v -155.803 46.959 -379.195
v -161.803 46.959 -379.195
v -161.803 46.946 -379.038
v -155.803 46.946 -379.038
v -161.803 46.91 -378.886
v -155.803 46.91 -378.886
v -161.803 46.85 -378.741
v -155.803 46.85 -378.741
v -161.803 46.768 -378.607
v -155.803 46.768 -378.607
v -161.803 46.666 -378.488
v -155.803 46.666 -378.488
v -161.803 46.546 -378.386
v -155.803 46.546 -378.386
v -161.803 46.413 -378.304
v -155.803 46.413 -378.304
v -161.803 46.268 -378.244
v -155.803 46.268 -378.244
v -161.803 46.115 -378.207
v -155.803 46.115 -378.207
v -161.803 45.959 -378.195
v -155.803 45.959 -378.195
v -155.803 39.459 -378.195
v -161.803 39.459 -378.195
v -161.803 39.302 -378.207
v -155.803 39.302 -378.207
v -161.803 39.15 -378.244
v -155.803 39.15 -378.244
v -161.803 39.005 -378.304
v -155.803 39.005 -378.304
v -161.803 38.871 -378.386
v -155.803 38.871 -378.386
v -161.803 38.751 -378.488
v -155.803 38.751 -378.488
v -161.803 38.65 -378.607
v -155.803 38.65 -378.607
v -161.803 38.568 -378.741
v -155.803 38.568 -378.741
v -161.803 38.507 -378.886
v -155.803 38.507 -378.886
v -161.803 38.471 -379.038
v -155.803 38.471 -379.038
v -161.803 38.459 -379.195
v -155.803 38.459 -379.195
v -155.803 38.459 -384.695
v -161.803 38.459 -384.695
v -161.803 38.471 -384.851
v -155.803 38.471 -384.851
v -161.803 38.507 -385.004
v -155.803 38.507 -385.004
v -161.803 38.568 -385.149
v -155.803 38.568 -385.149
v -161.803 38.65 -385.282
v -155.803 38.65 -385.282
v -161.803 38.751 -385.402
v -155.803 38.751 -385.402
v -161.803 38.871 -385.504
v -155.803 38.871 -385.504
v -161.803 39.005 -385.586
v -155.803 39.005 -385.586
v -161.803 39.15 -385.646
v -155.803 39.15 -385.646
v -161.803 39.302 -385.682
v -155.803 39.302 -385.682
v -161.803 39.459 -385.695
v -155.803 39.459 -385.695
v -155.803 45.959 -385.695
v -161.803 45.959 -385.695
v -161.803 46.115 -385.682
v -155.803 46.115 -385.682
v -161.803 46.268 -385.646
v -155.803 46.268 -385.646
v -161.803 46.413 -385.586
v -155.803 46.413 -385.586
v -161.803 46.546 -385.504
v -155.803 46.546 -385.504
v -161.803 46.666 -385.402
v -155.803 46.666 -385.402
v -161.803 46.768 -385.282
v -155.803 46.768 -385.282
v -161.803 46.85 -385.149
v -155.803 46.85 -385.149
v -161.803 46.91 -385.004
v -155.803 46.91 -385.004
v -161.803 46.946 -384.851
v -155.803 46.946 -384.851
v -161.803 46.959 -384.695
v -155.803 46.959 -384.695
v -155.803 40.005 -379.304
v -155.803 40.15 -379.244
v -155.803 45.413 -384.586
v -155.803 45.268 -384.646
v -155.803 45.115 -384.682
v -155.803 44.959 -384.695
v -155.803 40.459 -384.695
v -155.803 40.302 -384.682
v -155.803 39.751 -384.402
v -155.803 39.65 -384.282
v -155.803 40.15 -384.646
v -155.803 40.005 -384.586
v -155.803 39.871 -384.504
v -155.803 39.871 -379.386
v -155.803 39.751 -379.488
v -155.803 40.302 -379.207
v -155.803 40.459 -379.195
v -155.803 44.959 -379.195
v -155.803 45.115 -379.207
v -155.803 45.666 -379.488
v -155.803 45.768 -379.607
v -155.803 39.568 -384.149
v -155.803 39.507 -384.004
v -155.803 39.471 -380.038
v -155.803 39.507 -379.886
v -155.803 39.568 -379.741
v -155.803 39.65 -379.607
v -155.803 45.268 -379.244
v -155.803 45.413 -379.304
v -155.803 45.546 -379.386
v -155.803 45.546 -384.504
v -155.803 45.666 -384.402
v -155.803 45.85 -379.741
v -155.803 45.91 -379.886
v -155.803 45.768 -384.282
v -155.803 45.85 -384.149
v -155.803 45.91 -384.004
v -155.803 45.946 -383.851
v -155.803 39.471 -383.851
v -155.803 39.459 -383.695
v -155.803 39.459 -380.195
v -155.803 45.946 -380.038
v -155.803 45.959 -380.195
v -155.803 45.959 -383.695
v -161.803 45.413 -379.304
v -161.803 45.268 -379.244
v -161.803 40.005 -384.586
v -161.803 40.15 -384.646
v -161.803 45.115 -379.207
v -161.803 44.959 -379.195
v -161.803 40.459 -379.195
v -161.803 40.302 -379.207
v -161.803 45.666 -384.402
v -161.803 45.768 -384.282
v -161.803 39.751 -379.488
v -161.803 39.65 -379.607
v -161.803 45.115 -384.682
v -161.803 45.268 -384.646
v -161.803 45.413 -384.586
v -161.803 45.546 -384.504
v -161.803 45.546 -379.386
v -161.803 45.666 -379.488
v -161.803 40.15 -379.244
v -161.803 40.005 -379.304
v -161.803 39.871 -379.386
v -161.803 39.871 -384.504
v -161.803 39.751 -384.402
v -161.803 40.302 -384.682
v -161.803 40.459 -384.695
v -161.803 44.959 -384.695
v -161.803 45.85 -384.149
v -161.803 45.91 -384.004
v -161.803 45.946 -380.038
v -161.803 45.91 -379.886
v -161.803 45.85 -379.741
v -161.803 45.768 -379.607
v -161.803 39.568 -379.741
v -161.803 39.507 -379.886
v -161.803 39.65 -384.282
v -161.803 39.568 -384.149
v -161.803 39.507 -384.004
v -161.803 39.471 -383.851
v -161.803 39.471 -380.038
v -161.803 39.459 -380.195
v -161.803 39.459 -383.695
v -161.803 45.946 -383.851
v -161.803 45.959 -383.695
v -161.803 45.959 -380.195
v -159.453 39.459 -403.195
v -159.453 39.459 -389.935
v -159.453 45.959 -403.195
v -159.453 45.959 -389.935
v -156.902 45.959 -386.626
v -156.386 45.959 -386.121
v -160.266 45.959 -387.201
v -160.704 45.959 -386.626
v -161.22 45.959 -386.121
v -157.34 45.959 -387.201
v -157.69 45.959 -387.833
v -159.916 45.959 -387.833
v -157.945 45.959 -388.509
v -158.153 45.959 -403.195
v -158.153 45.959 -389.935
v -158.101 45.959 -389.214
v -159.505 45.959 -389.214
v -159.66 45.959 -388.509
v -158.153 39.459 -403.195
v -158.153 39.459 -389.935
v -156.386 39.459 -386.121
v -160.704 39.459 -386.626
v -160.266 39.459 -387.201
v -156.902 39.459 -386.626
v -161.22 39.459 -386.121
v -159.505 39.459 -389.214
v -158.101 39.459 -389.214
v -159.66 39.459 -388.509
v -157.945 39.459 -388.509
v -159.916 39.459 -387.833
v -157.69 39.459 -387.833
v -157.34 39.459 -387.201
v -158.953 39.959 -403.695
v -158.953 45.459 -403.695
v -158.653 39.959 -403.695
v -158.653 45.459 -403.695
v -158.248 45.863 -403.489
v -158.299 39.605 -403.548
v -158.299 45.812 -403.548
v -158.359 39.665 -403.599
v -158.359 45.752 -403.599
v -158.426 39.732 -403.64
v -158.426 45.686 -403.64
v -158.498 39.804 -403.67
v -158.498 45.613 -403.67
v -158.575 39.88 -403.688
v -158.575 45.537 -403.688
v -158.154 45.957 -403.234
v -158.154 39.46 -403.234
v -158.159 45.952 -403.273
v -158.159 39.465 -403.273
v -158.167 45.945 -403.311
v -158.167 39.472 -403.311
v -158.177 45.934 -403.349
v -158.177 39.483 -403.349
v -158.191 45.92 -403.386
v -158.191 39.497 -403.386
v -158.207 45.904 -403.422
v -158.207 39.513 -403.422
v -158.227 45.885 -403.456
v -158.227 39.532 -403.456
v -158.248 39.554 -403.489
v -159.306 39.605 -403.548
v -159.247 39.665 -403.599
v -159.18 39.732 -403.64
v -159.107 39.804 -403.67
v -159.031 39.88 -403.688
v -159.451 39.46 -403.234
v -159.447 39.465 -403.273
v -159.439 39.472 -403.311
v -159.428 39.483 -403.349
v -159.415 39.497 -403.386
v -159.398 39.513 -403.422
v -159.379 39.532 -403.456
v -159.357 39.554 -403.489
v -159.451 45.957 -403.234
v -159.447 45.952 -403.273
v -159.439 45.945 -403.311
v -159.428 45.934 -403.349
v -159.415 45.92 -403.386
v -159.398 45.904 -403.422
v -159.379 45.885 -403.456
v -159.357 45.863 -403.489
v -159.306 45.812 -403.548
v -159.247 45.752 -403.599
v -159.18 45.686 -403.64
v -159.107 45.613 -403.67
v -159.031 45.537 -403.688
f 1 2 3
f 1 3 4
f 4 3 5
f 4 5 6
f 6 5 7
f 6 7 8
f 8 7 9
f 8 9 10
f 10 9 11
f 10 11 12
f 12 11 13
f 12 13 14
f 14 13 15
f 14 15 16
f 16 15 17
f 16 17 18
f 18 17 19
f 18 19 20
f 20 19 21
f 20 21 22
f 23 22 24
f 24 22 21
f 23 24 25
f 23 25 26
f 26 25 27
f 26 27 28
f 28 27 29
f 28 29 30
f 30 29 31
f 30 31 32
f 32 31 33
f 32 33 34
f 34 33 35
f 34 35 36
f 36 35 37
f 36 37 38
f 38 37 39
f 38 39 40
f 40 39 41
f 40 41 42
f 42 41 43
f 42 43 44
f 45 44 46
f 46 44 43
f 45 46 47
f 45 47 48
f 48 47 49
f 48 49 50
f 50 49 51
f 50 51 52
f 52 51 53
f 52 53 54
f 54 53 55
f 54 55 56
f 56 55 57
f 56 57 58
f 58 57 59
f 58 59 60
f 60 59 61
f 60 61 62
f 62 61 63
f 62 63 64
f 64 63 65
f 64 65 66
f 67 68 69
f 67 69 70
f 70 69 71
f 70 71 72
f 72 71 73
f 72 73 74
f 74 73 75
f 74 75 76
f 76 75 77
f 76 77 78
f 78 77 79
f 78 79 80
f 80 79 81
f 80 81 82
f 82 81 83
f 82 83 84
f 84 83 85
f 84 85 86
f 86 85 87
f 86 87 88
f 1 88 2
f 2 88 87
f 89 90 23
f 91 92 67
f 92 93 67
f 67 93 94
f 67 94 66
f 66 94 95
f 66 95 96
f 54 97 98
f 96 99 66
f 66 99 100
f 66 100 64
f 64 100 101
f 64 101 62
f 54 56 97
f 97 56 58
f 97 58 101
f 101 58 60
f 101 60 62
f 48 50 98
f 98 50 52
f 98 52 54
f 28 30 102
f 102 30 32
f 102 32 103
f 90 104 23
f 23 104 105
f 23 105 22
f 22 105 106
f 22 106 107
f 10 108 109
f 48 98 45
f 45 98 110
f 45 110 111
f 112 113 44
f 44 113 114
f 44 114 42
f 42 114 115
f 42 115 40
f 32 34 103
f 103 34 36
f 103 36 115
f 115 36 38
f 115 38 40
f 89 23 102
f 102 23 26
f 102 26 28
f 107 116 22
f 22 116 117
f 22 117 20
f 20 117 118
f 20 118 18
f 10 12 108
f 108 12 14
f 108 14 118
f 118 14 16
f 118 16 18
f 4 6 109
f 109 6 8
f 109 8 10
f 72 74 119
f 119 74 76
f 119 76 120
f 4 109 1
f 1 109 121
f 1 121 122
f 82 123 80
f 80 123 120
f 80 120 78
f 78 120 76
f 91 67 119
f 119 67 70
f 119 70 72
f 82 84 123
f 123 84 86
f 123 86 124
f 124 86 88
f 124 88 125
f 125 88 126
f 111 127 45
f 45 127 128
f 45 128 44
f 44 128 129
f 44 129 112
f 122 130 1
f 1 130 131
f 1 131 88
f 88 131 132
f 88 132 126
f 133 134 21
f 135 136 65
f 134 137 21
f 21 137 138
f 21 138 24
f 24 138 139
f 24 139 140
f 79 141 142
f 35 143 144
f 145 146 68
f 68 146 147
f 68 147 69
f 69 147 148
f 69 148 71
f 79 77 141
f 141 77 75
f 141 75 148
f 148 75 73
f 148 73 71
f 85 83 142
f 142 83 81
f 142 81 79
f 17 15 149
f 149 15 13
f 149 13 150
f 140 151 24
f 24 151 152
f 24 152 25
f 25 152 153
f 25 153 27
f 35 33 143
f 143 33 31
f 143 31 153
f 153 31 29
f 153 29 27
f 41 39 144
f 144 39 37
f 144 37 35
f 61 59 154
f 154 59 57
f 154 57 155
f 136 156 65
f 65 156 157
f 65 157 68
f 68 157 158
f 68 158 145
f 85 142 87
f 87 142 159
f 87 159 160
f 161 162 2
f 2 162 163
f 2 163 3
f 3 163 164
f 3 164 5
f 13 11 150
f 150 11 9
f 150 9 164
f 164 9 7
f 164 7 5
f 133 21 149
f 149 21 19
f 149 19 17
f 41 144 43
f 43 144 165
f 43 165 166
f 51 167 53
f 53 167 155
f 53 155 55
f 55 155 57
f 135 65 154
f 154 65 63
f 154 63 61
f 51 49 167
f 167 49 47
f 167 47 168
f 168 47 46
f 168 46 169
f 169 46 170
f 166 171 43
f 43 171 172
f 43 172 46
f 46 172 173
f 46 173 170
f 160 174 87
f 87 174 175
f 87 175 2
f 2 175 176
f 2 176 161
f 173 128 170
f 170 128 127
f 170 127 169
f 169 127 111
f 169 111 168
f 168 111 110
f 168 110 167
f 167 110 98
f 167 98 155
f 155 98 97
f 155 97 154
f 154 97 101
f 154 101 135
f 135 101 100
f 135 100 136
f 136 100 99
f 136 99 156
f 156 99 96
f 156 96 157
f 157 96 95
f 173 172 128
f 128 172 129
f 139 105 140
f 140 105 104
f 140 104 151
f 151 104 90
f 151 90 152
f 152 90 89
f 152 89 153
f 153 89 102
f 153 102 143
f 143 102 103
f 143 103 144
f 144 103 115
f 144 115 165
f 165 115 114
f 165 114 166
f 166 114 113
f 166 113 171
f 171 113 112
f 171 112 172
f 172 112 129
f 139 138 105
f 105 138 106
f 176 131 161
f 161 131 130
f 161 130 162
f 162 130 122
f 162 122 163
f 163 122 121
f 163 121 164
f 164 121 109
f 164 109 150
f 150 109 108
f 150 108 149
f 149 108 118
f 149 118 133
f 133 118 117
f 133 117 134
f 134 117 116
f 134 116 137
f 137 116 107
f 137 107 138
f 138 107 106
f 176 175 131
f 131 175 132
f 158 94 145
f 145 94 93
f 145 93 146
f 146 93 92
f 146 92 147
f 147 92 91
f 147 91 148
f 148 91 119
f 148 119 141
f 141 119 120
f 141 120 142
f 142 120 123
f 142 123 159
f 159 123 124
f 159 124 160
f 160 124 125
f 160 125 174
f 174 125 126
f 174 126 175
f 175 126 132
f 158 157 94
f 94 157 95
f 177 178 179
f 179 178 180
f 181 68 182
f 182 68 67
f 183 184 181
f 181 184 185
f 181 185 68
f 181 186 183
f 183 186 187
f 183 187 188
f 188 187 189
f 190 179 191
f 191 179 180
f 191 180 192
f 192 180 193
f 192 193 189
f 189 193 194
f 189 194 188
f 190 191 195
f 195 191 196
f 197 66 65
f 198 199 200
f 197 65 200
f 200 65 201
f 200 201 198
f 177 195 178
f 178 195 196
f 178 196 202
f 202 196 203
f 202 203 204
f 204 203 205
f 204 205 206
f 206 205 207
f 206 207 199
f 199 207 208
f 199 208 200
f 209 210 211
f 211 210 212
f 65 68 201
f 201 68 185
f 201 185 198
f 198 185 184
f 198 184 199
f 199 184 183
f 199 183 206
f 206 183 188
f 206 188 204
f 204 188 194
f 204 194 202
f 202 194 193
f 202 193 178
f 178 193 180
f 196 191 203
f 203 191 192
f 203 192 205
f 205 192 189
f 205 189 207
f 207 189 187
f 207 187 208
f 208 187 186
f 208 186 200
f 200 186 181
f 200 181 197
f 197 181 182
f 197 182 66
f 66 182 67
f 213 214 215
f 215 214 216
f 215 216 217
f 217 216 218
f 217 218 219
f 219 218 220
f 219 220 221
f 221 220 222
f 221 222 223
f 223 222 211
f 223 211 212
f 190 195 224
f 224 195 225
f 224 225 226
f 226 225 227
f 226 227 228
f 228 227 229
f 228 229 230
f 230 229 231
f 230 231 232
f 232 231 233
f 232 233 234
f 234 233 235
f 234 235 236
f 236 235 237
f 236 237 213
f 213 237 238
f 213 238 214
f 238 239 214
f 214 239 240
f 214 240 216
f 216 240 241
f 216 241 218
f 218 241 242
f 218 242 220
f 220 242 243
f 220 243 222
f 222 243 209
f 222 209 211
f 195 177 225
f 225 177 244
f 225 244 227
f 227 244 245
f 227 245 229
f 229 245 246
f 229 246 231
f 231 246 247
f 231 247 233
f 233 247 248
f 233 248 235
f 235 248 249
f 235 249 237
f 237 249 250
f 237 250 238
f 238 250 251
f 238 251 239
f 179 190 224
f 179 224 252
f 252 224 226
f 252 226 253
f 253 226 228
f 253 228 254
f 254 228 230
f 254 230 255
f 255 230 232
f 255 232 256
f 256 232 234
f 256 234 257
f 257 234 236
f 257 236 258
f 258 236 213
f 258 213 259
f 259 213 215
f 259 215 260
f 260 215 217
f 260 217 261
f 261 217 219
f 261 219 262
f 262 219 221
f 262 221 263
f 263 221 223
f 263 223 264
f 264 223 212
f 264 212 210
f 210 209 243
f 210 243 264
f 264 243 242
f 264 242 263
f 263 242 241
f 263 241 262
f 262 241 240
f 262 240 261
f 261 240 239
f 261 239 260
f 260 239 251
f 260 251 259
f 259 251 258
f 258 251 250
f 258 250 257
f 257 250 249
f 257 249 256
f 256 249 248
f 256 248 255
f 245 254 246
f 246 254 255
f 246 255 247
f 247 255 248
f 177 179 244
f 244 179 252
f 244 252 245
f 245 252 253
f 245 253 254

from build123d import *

# Parameters (mm, degrees)
RESSALTO_EXTRUS_O1_DEPTH = 6
CORTE_EXTRUS_O1_DEPTH    = 389.589061789
ESBO_O3_W                = 1.3
ESBO_O3_H                = 6.5
RESSALTO_EXTRUS_O2_DEPTH = 18
FILETE1_R                = 5
FILETE3_R                = 0.5


with BuildPart() as part:
    # Esboço1 → Ressalto-extrusão1 (new body)
    with BuildSketch(Plane(origin=(-161.802837797, 0, 0), x_dir=(0, 0, -1), z_dir=(1, 0, 0))):
        with BuildLine():
            Line((384.694639655, 46.958533656), (379.194639655, 46.958533656))
            ThreePointArc((379.194639655, 46.958533656), (378.487532874, 46.665640437), (378.194639655, 45.958533656))
            Line((378.194639655, 45.958533656), (378.194639655, 39.458533656))
            ThreePointArc((378.194639655, 39.458533656), (378.487532874, 38.751426875), (379.194639655, 38.458533656))
            Line((379.194639655, 38.458533656), (384.694639655, 38.458533656))
            ThreePointArc((384.694639655, 38.458533656), (385.401746437, 38.751426875), (385.694639655, 39.458533656))
            Line((385.694639655, 39.458533656), (385.694639655, 45.958533656))
            ThreePointArc((385.694639655, 45.958533656), (385.401746437, 46.665640437), (384.694639655, 46.958533656))
        make_face()
    extrude(amount=RESSALTO_EXTRUS_O1_DEPTH)

    # Esboço2 → Corte-extrusão1 (cut, through all)
    with BuildSketch(Plane(origin=(-155.802837797, 0, 0), x_dir=(0, 0, -1), z_dir=(1, 0, 0))):
        with BuildLine():
            Line((380.194639655, 45.958533656), (383.694639655, 45.958533656))
            ThreePointArc((383.694639655, 45.958533656), (384.401746437, 45.665640437), (384.694639655, 44.958533656))
            Line((384.694639655, 44.958533656), (384.694639655, 40.458533656))
            ThreePointArc((384.694639655, 40.458533656), (384.401746437, 39.751426875), (383.694639655, 39.458533656))
            Line((383.694639655, 39.458533656), (380.194639655, 39.458533656))
            ThreePointArc((380.194639655, 39.458533656), (379.487532874, 39.751426875), (379.194639655, 40.458533656))
            Line((379.194639655, 40.458533656), (379.194639655, 44.958533656))
            ThreePointArc((379.194639655, 44.958533656), (379.487532874, 45.665640437), (380.194639655, 45.958533656))
        make_face()
    extrude(amount=-CORTE_EXTRUS_O1_DEPTH, mode=Mode.SUBTRACT)

    # Esboço3 → Ressalto-extrusão2 (add)
    with BuildSketch(Plane(origin=(0, 0, -385.694639655), x_dir=(-1, 0, 0), z_dir=(0, 0, -1))):
        with Locations((158.802837797, 42.708533656)):
            Rectangle(ESBO_O3_W, ESBO_O3_H)
    extrude(amount=RESSALTO_EXTRUS_O2_DEPTH)

    # Filete1
    # the kernel refuses this fillet: 5 mm, written as the material it adds along each edge
    with BuildSketch(Plane(origin=(-159.452837797, 39.458533656, -385.694639655), x_dir=(-1, 0, 0), z_dir=(0, 1, 0)), Plane(origin=(-158.152837797, 45.958533656, -385.694639655), x_dir=(1, 0, 0), z_dir=(0, -1, 0))) as filete1_piece_1:
        with BuildLine():
            CenterArc((5, -4.239988208), FILETE1_R, 122.005454828, 57.994545172)
            Line((0, -4.239988208), (-0.1, -4.239988208))
            Line((-0.1, -4.239988208), (-0.1, 0))
            Line((-0.1, 0), (0, 0.1))
            ThreePointArc((0, 0.1), (1.175, 0.1), (2.297, 0.084799764))
            Line((2.297, 0.084799764), (2.35, 0))
        make_face()
    extrude(amount=6.5)

    # Filete3
    filete3_edges = [part.edges().sort_by_distance(p)[0] for p in [
        (-159.452837797, 42.708533656, -403.694639655),
        (-158.802837797, 45.958533656, -403.694639655),
        (-158.152837797, 42.708533656, -403.694639655),
        (-158.802837797, 39.458533656, -403.694639655),
    ]]
    fillet(filete3_edges, radius=FILETE3_R)


solid = part.part
